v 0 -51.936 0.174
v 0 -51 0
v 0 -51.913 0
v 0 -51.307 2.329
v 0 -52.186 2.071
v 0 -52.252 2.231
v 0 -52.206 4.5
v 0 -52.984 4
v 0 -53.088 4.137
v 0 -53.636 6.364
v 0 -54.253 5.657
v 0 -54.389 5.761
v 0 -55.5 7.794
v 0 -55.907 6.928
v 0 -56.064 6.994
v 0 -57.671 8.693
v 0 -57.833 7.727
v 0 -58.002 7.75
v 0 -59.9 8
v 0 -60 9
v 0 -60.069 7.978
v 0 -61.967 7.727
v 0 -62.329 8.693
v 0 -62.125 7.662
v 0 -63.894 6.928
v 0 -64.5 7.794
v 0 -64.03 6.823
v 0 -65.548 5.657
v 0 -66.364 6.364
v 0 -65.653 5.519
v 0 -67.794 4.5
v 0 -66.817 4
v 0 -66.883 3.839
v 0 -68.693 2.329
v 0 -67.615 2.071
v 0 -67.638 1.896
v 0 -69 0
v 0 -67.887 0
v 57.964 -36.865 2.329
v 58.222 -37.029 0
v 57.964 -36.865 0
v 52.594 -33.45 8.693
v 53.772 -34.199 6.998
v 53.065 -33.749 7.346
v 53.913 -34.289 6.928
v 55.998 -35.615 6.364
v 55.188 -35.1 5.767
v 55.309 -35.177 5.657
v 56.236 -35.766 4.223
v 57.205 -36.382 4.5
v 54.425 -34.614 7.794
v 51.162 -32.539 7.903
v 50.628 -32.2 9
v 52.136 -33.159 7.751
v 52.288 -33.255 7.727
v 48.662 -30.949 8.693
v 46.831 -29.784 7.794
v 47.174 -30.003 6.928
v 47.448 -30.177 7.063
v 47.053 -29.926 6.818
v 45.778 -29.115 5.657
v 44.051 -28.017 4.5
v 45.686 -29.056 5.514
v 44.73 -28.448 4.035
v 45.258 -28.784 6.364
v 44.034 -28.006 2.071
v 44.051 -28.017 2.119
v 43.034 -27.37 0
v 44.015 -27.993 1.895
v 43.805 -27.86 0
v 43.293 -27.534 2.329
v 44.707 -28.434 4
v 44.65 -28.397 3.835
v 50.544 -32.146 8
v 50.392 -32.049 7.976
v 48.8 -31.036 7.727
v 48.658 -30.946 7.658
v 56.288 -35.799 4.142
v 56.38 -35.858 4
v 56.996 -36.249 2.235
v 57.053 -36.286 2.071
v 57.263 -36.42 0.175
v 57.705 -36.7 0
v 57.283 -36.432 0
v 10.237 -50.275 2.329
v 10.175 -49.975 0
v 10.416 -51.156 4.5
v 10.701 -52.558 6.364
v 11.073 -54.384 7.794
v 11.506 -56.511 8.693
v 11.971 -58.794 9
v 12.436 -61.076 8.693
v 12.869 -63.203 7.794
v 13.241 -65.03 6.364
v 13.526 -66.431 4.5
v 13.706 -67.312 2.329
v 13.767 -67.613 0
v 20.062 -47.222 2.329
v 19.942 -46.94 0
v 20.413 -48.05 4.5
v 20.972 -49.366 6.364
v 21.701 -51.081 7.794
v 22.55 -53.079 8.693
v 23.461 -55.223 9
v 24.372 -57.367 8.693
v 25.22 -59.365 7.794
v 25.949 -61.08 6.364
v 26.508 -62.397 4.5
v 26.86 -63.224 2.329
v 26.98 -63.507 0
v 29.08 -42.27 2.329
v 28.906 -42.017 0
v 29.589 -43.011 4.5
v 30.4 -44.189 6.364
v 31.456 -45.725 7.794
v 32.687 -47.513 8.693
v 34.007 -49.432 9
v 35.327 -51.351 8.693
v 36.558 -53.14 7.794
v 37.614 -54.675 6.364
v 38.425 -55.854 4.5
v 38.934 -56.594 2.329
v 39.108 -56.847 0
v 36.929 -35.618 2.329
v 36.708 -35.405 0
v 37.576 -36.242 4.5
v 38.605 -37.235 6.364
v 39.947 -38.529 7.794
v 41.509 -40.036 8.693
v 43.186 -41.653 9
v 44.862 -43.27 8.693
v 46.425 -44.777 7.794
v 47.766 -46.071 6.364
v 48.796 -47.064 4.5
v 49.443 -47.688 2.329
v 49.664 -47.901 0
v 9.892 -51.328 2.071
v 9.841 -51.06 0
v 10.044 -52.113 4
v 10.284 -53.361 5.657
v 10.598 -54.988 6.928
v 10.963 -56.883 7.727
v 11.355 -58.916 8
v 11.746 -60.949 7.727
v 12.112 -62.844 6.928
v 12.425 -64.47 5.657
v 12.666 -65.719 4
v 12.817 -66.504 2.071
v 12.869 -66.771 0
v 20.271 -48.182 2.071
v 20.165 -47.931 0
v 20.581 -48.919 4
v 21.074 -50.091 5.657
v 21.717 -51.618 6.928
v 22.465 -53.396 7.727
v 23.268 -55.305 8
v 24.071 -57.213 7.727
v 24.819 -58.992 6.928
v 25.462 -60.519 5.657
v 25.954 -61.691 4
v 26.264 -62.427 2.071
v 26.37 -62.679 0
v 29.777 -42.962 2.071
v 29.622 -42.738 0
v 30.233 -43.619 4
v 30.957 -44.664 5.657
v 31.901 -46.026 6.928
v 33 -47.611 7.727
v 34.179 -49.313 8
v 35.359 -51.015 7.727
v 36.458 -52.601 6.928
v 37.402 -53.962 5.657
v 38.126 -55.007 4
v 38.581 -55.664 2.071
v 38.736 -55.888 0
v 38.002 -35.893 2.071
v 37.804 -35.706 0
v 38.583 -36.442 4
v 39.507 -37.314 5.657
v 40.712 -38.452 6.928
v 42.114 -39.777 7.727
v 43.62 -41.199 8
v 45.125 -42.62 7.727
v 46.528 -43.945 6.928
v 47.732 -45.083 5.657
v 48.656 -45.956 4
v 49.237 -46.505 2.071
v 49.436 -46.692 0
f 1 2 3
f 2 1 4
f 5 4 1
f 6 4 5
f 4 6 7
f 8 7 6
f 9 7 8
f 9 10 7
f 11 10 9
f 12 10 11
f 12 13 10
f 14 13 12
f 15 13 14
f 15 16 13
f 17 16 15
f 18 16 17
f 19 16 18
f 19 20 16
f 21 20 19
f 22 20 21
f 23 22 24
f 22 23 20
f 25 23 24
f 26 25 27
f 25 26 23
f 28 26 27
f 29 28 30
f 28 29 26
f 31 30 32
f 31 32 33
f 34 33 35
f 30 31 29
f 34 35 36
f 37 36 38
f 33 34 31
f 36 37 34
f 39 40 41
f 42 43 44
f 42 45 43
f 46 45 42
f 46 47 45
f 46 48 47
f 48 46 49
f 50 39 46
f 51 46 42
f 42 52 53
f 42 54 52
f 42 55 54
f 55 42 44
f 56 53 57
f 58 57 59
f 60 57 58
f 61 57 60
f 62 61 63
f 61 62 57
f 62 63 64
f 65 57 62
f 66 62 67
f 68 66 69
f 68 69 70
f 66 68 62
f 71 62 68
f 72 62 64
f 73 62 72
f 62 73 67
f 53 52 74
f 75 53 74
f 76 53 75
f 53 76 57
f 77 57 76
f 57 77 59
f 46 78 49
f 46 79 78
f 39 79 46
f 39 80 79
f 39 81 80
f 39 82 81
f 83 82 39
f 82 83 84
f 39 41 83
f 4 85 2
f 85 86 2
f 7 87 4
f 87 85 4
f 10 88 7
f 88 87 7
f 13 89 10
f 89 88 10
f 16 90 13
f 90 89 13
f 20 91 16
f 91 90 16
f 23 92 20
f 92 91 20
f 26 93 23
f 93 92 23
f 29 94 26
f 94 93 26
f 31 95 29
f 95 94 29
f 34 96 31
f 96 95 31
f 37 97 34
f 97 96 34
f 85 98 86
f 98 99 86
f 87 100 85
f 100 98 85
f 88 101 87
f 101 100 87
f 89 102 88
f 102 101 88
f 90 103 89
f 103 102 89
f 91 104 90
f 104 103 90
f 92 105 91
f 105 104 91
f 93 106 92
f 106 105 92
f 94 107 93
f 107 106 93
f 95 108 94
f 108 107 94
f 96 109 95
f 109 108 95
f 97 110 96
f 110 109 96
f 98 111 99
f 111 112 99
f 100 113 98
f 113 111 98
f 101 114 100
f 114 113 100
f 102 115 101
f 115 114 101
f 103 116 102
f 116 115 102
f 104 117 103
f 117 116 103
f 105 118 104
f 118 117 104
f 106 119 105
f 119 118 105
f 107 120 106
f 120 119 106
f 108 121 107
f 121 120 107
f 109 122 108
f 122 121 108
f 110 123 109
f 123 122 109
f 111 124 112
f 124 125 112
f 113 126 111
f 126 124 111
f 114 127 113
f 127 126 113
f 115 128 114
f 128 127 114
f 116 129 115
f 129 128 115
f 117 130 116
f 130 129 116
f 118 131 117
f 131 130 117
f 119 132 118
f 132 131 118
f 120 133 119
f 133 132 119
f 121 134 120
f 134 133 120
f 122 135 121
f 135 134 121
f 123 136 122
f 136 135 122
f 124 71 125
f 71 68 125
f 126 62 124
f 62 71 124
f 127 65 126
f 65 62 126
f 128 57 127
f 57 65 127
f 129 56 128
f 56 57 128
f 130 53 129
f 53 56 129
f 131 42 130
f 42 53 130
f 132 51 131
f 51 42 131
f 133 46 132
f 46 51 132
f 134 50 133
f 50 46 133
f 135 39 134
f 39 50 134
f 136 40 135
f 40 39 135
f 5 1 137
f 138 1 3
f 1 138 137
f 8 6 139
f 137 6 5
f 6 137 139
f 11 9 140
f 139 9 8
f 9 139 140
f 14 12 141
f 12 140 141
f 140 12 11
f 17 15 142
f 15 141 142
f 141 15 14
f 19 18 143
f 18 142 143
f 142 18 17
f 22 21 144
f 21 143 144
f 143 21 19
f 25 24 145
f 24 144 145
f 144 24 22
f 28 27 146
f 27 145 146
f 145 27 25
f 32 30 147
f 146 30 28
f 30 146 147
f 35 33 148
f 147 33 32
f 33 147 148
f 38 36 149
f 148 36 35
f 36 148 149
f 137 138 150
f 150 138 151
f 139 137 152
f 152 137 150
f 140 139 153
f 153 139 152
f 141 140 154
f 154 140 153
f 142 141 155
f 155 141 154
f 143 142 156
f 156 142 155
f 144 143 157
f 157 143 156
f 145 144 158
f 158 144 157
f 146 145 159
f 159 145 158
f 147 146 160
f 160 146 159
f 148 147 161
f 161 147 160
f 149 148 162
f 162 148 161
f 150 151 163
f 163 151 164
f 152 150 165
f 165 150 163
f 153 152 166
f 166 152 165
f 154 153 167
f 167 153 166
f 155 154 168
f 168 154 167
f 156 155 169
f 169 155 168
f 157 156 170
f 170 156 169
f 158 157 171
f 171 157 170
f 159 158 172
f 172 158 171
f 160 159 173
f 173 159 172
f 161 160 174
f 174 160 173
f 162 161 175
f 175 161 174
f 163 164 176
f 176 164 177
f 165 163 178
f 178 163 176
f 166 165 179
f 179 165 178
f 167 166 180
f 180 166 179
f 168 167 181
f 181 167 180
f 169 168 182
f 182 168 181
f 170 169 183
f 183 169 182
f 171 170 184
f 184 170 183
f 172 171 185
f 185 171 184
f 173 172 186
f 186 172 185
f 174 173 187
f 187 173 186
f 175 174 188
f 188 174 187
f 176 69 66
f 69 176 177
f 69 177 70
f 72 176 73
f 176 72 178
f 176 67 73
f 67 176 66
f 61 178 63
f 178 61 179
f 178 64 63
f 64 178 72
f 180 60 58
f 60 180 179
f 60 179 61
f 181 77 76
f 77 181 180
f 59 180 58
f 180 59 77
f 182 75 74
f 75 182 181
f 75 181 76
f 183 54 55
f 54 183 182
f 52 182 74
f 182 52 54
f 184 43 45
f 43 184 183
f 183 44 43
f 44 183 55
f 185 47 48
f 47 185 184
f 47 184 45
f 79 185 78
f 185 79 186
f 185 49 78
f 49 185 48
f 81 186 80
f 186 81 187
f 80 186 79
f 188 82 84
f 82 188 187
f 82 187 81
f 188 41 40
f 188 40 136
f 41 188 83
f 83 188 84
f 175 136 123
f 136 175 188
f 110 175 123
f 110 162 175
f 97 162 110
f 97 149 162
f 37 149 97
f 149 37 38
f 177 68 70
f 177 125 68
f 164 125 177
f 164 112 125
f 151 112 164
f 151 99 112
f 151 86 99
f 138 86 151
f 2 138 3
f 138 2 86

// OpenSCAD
// file: ../build_environments.scad
// build_environments.scad: modules to build level sections
//

module pool(diameter=10.0, wall_height=2.0, step_width=3.0, connections=[])
{
    difference() {
        union() {
        difference() {
            cylinder(h=0.5,r1=diameter+step_width,r2=diameter+step_width,$fn=48);
            translate([0,0,-0.1])
                cylinder(h=0.7,r1=diameter,r2=diameter,$fn=48);
        }
        difference() {
            cylinder(h=wall_height,r1=diameter+step_width+1.0,r2=diameter+step_width+1.0,$fn=48);
            translate([0,0,-0.1])
                cylinder(h=wall_height+0.2,r1=diameter+step_width,r2=diameter+step_width,$fn=48);
        }
        }
    
        for (c = connections)
        {
            rotate([0,90,0]) {
                angle = atan2(c[1],c[0]);
                rotate([-angle,0,0]) {
                    cylinder(h=diameter+5.0,r1=c[2],r2=c[2],$fn=48);
                }
            }
        }
    }
}

module straight(length=10.0, width=2.0, dy1=0.0, dy2=0.0, dz=0.0)
{
    dims = [0, 0, 0, 0, 0, (dz/length)];
    matrix = [
        [ 1, dims[0], dims[1], 0 ],
        [ dims[2], 1, dims[4], 0 ],
        [ dims[5], dims[3], 1, 0 ],
        [ 0, 0, 0, 1 ]
    ];
    multmatrix(matrix)
    difference() {
        translate([dy1,0,0])
        union() {
            rotate([0,90,0]) {
                difference() {
                    cylinder(h=(length-dy1-dy2),r1=width+1.0,r2=width+1.0,$fn=24);
                    translate([0,0,-0.1])
                        cylinder(h=(length-dy1-dy2+0.2),r1=width,r2=width,$fn=24);
                }
                difference() {
                    cylinder(h=1.0,r1=width+2.0,r2=width+2.0,$fn=24);
                    translate([0,0,-0.1])
                        cylinder(h=1.2,r1=width,r2=width,$fn=24);
                }
                translate([0,0,(length-dy1-dy2)-1.0]) {
                    difference() {
                        cylinder(h=1.0,r1=width+2.0,r2=width+2.0,$fn=24);
                        translate([0,0,-0.1])
                            cylinder(h=1.2,r1=width,r2=width,$fn=24);
                    }
                }
            }
        }
        translate([0,0,-(2*width+4.0)/2])
            cube([3*length,3*length,2*width+4.0],center=true);
    }
}

module curve(p0=[0,0], center=[0,0], dir=1, angle=0.0, width=2.0)
{
    radius = sqrt((p0[0]-center[0])*(p0[0]-center[0]) + (p0[1]-center[1])*(p0[1]-center[1]));
    if (dir == 0) {
        difference() {
            rotate([0,0,-90])
            difference() {
                rotate_extrude(angle = angle, convexity = 10, $fn=32)
                    translate([radius, 0, 0])
                        circle(r = width+1.0,$fn=24);
                rotate([0,0,-1.0])
                    rotate_extrude(angle = angle+2.0, convexity = 10, $fn=32)
                        translate([radius, 0, 0])
                            circle(r = width,$fn=24);
            }
            translate([0,0,-(2*width+4.0)/2])
                cube([5*radius,5*radius,2*width+4.0],center=true);
        }
    }
    else {
        difference() {
            rotate([0,0,90])
            difference() {
                rotate_extrude(angle = -angle, convexity = 10, $fn=32)
                    translate([radius, 0, 0])
                        circle(r = width+1.0,$fn=24);
                rotate([0,0,1.0])
                    rotate_extrude(angle = -angle-2.0, convexity = 10, $fn=32)
                        translate([radius, 0, 0])
                            circle(r = width,$fn=24);
            }
            translate([0,0,-(2*width+4.0)/2])
                cube([5*radius,5*radius,2*width+4.0],center=true);
        }
    }

}

// test pool
//pool(diameter=12.0000, wall_height=3.0000, step_width=3.0000, connections=[[0.0000,-26.0000,2.0000], [23.6074,0.0000,2.0000]]);

// test straight, slope
//straight(length=26.0000, width=2.0000, dy1=11.8322, dy2=6.7082, dz=0.0000);
//straight(length=29.1549, width=12.0000, dy1=0.0000, dy2=0.0000, dz=-15.0000);

// test curve
//curve(p0=[23.6074, 0.0000], center=[23.6074, 5.0000], dir=0, angle=60.1011, width=2.0000);
//curve(p0=[33.6426, 12.4219], center=[37.9771, 9.9295], dir=1, angle=120.4627, width=2.0000);
// main file
use <../build_environments.scad>;
curve(p0=[299.5186, 47.0228], center=[313.9085, 105.2717], dir=0, angle=57.5436, width=8.0000);
